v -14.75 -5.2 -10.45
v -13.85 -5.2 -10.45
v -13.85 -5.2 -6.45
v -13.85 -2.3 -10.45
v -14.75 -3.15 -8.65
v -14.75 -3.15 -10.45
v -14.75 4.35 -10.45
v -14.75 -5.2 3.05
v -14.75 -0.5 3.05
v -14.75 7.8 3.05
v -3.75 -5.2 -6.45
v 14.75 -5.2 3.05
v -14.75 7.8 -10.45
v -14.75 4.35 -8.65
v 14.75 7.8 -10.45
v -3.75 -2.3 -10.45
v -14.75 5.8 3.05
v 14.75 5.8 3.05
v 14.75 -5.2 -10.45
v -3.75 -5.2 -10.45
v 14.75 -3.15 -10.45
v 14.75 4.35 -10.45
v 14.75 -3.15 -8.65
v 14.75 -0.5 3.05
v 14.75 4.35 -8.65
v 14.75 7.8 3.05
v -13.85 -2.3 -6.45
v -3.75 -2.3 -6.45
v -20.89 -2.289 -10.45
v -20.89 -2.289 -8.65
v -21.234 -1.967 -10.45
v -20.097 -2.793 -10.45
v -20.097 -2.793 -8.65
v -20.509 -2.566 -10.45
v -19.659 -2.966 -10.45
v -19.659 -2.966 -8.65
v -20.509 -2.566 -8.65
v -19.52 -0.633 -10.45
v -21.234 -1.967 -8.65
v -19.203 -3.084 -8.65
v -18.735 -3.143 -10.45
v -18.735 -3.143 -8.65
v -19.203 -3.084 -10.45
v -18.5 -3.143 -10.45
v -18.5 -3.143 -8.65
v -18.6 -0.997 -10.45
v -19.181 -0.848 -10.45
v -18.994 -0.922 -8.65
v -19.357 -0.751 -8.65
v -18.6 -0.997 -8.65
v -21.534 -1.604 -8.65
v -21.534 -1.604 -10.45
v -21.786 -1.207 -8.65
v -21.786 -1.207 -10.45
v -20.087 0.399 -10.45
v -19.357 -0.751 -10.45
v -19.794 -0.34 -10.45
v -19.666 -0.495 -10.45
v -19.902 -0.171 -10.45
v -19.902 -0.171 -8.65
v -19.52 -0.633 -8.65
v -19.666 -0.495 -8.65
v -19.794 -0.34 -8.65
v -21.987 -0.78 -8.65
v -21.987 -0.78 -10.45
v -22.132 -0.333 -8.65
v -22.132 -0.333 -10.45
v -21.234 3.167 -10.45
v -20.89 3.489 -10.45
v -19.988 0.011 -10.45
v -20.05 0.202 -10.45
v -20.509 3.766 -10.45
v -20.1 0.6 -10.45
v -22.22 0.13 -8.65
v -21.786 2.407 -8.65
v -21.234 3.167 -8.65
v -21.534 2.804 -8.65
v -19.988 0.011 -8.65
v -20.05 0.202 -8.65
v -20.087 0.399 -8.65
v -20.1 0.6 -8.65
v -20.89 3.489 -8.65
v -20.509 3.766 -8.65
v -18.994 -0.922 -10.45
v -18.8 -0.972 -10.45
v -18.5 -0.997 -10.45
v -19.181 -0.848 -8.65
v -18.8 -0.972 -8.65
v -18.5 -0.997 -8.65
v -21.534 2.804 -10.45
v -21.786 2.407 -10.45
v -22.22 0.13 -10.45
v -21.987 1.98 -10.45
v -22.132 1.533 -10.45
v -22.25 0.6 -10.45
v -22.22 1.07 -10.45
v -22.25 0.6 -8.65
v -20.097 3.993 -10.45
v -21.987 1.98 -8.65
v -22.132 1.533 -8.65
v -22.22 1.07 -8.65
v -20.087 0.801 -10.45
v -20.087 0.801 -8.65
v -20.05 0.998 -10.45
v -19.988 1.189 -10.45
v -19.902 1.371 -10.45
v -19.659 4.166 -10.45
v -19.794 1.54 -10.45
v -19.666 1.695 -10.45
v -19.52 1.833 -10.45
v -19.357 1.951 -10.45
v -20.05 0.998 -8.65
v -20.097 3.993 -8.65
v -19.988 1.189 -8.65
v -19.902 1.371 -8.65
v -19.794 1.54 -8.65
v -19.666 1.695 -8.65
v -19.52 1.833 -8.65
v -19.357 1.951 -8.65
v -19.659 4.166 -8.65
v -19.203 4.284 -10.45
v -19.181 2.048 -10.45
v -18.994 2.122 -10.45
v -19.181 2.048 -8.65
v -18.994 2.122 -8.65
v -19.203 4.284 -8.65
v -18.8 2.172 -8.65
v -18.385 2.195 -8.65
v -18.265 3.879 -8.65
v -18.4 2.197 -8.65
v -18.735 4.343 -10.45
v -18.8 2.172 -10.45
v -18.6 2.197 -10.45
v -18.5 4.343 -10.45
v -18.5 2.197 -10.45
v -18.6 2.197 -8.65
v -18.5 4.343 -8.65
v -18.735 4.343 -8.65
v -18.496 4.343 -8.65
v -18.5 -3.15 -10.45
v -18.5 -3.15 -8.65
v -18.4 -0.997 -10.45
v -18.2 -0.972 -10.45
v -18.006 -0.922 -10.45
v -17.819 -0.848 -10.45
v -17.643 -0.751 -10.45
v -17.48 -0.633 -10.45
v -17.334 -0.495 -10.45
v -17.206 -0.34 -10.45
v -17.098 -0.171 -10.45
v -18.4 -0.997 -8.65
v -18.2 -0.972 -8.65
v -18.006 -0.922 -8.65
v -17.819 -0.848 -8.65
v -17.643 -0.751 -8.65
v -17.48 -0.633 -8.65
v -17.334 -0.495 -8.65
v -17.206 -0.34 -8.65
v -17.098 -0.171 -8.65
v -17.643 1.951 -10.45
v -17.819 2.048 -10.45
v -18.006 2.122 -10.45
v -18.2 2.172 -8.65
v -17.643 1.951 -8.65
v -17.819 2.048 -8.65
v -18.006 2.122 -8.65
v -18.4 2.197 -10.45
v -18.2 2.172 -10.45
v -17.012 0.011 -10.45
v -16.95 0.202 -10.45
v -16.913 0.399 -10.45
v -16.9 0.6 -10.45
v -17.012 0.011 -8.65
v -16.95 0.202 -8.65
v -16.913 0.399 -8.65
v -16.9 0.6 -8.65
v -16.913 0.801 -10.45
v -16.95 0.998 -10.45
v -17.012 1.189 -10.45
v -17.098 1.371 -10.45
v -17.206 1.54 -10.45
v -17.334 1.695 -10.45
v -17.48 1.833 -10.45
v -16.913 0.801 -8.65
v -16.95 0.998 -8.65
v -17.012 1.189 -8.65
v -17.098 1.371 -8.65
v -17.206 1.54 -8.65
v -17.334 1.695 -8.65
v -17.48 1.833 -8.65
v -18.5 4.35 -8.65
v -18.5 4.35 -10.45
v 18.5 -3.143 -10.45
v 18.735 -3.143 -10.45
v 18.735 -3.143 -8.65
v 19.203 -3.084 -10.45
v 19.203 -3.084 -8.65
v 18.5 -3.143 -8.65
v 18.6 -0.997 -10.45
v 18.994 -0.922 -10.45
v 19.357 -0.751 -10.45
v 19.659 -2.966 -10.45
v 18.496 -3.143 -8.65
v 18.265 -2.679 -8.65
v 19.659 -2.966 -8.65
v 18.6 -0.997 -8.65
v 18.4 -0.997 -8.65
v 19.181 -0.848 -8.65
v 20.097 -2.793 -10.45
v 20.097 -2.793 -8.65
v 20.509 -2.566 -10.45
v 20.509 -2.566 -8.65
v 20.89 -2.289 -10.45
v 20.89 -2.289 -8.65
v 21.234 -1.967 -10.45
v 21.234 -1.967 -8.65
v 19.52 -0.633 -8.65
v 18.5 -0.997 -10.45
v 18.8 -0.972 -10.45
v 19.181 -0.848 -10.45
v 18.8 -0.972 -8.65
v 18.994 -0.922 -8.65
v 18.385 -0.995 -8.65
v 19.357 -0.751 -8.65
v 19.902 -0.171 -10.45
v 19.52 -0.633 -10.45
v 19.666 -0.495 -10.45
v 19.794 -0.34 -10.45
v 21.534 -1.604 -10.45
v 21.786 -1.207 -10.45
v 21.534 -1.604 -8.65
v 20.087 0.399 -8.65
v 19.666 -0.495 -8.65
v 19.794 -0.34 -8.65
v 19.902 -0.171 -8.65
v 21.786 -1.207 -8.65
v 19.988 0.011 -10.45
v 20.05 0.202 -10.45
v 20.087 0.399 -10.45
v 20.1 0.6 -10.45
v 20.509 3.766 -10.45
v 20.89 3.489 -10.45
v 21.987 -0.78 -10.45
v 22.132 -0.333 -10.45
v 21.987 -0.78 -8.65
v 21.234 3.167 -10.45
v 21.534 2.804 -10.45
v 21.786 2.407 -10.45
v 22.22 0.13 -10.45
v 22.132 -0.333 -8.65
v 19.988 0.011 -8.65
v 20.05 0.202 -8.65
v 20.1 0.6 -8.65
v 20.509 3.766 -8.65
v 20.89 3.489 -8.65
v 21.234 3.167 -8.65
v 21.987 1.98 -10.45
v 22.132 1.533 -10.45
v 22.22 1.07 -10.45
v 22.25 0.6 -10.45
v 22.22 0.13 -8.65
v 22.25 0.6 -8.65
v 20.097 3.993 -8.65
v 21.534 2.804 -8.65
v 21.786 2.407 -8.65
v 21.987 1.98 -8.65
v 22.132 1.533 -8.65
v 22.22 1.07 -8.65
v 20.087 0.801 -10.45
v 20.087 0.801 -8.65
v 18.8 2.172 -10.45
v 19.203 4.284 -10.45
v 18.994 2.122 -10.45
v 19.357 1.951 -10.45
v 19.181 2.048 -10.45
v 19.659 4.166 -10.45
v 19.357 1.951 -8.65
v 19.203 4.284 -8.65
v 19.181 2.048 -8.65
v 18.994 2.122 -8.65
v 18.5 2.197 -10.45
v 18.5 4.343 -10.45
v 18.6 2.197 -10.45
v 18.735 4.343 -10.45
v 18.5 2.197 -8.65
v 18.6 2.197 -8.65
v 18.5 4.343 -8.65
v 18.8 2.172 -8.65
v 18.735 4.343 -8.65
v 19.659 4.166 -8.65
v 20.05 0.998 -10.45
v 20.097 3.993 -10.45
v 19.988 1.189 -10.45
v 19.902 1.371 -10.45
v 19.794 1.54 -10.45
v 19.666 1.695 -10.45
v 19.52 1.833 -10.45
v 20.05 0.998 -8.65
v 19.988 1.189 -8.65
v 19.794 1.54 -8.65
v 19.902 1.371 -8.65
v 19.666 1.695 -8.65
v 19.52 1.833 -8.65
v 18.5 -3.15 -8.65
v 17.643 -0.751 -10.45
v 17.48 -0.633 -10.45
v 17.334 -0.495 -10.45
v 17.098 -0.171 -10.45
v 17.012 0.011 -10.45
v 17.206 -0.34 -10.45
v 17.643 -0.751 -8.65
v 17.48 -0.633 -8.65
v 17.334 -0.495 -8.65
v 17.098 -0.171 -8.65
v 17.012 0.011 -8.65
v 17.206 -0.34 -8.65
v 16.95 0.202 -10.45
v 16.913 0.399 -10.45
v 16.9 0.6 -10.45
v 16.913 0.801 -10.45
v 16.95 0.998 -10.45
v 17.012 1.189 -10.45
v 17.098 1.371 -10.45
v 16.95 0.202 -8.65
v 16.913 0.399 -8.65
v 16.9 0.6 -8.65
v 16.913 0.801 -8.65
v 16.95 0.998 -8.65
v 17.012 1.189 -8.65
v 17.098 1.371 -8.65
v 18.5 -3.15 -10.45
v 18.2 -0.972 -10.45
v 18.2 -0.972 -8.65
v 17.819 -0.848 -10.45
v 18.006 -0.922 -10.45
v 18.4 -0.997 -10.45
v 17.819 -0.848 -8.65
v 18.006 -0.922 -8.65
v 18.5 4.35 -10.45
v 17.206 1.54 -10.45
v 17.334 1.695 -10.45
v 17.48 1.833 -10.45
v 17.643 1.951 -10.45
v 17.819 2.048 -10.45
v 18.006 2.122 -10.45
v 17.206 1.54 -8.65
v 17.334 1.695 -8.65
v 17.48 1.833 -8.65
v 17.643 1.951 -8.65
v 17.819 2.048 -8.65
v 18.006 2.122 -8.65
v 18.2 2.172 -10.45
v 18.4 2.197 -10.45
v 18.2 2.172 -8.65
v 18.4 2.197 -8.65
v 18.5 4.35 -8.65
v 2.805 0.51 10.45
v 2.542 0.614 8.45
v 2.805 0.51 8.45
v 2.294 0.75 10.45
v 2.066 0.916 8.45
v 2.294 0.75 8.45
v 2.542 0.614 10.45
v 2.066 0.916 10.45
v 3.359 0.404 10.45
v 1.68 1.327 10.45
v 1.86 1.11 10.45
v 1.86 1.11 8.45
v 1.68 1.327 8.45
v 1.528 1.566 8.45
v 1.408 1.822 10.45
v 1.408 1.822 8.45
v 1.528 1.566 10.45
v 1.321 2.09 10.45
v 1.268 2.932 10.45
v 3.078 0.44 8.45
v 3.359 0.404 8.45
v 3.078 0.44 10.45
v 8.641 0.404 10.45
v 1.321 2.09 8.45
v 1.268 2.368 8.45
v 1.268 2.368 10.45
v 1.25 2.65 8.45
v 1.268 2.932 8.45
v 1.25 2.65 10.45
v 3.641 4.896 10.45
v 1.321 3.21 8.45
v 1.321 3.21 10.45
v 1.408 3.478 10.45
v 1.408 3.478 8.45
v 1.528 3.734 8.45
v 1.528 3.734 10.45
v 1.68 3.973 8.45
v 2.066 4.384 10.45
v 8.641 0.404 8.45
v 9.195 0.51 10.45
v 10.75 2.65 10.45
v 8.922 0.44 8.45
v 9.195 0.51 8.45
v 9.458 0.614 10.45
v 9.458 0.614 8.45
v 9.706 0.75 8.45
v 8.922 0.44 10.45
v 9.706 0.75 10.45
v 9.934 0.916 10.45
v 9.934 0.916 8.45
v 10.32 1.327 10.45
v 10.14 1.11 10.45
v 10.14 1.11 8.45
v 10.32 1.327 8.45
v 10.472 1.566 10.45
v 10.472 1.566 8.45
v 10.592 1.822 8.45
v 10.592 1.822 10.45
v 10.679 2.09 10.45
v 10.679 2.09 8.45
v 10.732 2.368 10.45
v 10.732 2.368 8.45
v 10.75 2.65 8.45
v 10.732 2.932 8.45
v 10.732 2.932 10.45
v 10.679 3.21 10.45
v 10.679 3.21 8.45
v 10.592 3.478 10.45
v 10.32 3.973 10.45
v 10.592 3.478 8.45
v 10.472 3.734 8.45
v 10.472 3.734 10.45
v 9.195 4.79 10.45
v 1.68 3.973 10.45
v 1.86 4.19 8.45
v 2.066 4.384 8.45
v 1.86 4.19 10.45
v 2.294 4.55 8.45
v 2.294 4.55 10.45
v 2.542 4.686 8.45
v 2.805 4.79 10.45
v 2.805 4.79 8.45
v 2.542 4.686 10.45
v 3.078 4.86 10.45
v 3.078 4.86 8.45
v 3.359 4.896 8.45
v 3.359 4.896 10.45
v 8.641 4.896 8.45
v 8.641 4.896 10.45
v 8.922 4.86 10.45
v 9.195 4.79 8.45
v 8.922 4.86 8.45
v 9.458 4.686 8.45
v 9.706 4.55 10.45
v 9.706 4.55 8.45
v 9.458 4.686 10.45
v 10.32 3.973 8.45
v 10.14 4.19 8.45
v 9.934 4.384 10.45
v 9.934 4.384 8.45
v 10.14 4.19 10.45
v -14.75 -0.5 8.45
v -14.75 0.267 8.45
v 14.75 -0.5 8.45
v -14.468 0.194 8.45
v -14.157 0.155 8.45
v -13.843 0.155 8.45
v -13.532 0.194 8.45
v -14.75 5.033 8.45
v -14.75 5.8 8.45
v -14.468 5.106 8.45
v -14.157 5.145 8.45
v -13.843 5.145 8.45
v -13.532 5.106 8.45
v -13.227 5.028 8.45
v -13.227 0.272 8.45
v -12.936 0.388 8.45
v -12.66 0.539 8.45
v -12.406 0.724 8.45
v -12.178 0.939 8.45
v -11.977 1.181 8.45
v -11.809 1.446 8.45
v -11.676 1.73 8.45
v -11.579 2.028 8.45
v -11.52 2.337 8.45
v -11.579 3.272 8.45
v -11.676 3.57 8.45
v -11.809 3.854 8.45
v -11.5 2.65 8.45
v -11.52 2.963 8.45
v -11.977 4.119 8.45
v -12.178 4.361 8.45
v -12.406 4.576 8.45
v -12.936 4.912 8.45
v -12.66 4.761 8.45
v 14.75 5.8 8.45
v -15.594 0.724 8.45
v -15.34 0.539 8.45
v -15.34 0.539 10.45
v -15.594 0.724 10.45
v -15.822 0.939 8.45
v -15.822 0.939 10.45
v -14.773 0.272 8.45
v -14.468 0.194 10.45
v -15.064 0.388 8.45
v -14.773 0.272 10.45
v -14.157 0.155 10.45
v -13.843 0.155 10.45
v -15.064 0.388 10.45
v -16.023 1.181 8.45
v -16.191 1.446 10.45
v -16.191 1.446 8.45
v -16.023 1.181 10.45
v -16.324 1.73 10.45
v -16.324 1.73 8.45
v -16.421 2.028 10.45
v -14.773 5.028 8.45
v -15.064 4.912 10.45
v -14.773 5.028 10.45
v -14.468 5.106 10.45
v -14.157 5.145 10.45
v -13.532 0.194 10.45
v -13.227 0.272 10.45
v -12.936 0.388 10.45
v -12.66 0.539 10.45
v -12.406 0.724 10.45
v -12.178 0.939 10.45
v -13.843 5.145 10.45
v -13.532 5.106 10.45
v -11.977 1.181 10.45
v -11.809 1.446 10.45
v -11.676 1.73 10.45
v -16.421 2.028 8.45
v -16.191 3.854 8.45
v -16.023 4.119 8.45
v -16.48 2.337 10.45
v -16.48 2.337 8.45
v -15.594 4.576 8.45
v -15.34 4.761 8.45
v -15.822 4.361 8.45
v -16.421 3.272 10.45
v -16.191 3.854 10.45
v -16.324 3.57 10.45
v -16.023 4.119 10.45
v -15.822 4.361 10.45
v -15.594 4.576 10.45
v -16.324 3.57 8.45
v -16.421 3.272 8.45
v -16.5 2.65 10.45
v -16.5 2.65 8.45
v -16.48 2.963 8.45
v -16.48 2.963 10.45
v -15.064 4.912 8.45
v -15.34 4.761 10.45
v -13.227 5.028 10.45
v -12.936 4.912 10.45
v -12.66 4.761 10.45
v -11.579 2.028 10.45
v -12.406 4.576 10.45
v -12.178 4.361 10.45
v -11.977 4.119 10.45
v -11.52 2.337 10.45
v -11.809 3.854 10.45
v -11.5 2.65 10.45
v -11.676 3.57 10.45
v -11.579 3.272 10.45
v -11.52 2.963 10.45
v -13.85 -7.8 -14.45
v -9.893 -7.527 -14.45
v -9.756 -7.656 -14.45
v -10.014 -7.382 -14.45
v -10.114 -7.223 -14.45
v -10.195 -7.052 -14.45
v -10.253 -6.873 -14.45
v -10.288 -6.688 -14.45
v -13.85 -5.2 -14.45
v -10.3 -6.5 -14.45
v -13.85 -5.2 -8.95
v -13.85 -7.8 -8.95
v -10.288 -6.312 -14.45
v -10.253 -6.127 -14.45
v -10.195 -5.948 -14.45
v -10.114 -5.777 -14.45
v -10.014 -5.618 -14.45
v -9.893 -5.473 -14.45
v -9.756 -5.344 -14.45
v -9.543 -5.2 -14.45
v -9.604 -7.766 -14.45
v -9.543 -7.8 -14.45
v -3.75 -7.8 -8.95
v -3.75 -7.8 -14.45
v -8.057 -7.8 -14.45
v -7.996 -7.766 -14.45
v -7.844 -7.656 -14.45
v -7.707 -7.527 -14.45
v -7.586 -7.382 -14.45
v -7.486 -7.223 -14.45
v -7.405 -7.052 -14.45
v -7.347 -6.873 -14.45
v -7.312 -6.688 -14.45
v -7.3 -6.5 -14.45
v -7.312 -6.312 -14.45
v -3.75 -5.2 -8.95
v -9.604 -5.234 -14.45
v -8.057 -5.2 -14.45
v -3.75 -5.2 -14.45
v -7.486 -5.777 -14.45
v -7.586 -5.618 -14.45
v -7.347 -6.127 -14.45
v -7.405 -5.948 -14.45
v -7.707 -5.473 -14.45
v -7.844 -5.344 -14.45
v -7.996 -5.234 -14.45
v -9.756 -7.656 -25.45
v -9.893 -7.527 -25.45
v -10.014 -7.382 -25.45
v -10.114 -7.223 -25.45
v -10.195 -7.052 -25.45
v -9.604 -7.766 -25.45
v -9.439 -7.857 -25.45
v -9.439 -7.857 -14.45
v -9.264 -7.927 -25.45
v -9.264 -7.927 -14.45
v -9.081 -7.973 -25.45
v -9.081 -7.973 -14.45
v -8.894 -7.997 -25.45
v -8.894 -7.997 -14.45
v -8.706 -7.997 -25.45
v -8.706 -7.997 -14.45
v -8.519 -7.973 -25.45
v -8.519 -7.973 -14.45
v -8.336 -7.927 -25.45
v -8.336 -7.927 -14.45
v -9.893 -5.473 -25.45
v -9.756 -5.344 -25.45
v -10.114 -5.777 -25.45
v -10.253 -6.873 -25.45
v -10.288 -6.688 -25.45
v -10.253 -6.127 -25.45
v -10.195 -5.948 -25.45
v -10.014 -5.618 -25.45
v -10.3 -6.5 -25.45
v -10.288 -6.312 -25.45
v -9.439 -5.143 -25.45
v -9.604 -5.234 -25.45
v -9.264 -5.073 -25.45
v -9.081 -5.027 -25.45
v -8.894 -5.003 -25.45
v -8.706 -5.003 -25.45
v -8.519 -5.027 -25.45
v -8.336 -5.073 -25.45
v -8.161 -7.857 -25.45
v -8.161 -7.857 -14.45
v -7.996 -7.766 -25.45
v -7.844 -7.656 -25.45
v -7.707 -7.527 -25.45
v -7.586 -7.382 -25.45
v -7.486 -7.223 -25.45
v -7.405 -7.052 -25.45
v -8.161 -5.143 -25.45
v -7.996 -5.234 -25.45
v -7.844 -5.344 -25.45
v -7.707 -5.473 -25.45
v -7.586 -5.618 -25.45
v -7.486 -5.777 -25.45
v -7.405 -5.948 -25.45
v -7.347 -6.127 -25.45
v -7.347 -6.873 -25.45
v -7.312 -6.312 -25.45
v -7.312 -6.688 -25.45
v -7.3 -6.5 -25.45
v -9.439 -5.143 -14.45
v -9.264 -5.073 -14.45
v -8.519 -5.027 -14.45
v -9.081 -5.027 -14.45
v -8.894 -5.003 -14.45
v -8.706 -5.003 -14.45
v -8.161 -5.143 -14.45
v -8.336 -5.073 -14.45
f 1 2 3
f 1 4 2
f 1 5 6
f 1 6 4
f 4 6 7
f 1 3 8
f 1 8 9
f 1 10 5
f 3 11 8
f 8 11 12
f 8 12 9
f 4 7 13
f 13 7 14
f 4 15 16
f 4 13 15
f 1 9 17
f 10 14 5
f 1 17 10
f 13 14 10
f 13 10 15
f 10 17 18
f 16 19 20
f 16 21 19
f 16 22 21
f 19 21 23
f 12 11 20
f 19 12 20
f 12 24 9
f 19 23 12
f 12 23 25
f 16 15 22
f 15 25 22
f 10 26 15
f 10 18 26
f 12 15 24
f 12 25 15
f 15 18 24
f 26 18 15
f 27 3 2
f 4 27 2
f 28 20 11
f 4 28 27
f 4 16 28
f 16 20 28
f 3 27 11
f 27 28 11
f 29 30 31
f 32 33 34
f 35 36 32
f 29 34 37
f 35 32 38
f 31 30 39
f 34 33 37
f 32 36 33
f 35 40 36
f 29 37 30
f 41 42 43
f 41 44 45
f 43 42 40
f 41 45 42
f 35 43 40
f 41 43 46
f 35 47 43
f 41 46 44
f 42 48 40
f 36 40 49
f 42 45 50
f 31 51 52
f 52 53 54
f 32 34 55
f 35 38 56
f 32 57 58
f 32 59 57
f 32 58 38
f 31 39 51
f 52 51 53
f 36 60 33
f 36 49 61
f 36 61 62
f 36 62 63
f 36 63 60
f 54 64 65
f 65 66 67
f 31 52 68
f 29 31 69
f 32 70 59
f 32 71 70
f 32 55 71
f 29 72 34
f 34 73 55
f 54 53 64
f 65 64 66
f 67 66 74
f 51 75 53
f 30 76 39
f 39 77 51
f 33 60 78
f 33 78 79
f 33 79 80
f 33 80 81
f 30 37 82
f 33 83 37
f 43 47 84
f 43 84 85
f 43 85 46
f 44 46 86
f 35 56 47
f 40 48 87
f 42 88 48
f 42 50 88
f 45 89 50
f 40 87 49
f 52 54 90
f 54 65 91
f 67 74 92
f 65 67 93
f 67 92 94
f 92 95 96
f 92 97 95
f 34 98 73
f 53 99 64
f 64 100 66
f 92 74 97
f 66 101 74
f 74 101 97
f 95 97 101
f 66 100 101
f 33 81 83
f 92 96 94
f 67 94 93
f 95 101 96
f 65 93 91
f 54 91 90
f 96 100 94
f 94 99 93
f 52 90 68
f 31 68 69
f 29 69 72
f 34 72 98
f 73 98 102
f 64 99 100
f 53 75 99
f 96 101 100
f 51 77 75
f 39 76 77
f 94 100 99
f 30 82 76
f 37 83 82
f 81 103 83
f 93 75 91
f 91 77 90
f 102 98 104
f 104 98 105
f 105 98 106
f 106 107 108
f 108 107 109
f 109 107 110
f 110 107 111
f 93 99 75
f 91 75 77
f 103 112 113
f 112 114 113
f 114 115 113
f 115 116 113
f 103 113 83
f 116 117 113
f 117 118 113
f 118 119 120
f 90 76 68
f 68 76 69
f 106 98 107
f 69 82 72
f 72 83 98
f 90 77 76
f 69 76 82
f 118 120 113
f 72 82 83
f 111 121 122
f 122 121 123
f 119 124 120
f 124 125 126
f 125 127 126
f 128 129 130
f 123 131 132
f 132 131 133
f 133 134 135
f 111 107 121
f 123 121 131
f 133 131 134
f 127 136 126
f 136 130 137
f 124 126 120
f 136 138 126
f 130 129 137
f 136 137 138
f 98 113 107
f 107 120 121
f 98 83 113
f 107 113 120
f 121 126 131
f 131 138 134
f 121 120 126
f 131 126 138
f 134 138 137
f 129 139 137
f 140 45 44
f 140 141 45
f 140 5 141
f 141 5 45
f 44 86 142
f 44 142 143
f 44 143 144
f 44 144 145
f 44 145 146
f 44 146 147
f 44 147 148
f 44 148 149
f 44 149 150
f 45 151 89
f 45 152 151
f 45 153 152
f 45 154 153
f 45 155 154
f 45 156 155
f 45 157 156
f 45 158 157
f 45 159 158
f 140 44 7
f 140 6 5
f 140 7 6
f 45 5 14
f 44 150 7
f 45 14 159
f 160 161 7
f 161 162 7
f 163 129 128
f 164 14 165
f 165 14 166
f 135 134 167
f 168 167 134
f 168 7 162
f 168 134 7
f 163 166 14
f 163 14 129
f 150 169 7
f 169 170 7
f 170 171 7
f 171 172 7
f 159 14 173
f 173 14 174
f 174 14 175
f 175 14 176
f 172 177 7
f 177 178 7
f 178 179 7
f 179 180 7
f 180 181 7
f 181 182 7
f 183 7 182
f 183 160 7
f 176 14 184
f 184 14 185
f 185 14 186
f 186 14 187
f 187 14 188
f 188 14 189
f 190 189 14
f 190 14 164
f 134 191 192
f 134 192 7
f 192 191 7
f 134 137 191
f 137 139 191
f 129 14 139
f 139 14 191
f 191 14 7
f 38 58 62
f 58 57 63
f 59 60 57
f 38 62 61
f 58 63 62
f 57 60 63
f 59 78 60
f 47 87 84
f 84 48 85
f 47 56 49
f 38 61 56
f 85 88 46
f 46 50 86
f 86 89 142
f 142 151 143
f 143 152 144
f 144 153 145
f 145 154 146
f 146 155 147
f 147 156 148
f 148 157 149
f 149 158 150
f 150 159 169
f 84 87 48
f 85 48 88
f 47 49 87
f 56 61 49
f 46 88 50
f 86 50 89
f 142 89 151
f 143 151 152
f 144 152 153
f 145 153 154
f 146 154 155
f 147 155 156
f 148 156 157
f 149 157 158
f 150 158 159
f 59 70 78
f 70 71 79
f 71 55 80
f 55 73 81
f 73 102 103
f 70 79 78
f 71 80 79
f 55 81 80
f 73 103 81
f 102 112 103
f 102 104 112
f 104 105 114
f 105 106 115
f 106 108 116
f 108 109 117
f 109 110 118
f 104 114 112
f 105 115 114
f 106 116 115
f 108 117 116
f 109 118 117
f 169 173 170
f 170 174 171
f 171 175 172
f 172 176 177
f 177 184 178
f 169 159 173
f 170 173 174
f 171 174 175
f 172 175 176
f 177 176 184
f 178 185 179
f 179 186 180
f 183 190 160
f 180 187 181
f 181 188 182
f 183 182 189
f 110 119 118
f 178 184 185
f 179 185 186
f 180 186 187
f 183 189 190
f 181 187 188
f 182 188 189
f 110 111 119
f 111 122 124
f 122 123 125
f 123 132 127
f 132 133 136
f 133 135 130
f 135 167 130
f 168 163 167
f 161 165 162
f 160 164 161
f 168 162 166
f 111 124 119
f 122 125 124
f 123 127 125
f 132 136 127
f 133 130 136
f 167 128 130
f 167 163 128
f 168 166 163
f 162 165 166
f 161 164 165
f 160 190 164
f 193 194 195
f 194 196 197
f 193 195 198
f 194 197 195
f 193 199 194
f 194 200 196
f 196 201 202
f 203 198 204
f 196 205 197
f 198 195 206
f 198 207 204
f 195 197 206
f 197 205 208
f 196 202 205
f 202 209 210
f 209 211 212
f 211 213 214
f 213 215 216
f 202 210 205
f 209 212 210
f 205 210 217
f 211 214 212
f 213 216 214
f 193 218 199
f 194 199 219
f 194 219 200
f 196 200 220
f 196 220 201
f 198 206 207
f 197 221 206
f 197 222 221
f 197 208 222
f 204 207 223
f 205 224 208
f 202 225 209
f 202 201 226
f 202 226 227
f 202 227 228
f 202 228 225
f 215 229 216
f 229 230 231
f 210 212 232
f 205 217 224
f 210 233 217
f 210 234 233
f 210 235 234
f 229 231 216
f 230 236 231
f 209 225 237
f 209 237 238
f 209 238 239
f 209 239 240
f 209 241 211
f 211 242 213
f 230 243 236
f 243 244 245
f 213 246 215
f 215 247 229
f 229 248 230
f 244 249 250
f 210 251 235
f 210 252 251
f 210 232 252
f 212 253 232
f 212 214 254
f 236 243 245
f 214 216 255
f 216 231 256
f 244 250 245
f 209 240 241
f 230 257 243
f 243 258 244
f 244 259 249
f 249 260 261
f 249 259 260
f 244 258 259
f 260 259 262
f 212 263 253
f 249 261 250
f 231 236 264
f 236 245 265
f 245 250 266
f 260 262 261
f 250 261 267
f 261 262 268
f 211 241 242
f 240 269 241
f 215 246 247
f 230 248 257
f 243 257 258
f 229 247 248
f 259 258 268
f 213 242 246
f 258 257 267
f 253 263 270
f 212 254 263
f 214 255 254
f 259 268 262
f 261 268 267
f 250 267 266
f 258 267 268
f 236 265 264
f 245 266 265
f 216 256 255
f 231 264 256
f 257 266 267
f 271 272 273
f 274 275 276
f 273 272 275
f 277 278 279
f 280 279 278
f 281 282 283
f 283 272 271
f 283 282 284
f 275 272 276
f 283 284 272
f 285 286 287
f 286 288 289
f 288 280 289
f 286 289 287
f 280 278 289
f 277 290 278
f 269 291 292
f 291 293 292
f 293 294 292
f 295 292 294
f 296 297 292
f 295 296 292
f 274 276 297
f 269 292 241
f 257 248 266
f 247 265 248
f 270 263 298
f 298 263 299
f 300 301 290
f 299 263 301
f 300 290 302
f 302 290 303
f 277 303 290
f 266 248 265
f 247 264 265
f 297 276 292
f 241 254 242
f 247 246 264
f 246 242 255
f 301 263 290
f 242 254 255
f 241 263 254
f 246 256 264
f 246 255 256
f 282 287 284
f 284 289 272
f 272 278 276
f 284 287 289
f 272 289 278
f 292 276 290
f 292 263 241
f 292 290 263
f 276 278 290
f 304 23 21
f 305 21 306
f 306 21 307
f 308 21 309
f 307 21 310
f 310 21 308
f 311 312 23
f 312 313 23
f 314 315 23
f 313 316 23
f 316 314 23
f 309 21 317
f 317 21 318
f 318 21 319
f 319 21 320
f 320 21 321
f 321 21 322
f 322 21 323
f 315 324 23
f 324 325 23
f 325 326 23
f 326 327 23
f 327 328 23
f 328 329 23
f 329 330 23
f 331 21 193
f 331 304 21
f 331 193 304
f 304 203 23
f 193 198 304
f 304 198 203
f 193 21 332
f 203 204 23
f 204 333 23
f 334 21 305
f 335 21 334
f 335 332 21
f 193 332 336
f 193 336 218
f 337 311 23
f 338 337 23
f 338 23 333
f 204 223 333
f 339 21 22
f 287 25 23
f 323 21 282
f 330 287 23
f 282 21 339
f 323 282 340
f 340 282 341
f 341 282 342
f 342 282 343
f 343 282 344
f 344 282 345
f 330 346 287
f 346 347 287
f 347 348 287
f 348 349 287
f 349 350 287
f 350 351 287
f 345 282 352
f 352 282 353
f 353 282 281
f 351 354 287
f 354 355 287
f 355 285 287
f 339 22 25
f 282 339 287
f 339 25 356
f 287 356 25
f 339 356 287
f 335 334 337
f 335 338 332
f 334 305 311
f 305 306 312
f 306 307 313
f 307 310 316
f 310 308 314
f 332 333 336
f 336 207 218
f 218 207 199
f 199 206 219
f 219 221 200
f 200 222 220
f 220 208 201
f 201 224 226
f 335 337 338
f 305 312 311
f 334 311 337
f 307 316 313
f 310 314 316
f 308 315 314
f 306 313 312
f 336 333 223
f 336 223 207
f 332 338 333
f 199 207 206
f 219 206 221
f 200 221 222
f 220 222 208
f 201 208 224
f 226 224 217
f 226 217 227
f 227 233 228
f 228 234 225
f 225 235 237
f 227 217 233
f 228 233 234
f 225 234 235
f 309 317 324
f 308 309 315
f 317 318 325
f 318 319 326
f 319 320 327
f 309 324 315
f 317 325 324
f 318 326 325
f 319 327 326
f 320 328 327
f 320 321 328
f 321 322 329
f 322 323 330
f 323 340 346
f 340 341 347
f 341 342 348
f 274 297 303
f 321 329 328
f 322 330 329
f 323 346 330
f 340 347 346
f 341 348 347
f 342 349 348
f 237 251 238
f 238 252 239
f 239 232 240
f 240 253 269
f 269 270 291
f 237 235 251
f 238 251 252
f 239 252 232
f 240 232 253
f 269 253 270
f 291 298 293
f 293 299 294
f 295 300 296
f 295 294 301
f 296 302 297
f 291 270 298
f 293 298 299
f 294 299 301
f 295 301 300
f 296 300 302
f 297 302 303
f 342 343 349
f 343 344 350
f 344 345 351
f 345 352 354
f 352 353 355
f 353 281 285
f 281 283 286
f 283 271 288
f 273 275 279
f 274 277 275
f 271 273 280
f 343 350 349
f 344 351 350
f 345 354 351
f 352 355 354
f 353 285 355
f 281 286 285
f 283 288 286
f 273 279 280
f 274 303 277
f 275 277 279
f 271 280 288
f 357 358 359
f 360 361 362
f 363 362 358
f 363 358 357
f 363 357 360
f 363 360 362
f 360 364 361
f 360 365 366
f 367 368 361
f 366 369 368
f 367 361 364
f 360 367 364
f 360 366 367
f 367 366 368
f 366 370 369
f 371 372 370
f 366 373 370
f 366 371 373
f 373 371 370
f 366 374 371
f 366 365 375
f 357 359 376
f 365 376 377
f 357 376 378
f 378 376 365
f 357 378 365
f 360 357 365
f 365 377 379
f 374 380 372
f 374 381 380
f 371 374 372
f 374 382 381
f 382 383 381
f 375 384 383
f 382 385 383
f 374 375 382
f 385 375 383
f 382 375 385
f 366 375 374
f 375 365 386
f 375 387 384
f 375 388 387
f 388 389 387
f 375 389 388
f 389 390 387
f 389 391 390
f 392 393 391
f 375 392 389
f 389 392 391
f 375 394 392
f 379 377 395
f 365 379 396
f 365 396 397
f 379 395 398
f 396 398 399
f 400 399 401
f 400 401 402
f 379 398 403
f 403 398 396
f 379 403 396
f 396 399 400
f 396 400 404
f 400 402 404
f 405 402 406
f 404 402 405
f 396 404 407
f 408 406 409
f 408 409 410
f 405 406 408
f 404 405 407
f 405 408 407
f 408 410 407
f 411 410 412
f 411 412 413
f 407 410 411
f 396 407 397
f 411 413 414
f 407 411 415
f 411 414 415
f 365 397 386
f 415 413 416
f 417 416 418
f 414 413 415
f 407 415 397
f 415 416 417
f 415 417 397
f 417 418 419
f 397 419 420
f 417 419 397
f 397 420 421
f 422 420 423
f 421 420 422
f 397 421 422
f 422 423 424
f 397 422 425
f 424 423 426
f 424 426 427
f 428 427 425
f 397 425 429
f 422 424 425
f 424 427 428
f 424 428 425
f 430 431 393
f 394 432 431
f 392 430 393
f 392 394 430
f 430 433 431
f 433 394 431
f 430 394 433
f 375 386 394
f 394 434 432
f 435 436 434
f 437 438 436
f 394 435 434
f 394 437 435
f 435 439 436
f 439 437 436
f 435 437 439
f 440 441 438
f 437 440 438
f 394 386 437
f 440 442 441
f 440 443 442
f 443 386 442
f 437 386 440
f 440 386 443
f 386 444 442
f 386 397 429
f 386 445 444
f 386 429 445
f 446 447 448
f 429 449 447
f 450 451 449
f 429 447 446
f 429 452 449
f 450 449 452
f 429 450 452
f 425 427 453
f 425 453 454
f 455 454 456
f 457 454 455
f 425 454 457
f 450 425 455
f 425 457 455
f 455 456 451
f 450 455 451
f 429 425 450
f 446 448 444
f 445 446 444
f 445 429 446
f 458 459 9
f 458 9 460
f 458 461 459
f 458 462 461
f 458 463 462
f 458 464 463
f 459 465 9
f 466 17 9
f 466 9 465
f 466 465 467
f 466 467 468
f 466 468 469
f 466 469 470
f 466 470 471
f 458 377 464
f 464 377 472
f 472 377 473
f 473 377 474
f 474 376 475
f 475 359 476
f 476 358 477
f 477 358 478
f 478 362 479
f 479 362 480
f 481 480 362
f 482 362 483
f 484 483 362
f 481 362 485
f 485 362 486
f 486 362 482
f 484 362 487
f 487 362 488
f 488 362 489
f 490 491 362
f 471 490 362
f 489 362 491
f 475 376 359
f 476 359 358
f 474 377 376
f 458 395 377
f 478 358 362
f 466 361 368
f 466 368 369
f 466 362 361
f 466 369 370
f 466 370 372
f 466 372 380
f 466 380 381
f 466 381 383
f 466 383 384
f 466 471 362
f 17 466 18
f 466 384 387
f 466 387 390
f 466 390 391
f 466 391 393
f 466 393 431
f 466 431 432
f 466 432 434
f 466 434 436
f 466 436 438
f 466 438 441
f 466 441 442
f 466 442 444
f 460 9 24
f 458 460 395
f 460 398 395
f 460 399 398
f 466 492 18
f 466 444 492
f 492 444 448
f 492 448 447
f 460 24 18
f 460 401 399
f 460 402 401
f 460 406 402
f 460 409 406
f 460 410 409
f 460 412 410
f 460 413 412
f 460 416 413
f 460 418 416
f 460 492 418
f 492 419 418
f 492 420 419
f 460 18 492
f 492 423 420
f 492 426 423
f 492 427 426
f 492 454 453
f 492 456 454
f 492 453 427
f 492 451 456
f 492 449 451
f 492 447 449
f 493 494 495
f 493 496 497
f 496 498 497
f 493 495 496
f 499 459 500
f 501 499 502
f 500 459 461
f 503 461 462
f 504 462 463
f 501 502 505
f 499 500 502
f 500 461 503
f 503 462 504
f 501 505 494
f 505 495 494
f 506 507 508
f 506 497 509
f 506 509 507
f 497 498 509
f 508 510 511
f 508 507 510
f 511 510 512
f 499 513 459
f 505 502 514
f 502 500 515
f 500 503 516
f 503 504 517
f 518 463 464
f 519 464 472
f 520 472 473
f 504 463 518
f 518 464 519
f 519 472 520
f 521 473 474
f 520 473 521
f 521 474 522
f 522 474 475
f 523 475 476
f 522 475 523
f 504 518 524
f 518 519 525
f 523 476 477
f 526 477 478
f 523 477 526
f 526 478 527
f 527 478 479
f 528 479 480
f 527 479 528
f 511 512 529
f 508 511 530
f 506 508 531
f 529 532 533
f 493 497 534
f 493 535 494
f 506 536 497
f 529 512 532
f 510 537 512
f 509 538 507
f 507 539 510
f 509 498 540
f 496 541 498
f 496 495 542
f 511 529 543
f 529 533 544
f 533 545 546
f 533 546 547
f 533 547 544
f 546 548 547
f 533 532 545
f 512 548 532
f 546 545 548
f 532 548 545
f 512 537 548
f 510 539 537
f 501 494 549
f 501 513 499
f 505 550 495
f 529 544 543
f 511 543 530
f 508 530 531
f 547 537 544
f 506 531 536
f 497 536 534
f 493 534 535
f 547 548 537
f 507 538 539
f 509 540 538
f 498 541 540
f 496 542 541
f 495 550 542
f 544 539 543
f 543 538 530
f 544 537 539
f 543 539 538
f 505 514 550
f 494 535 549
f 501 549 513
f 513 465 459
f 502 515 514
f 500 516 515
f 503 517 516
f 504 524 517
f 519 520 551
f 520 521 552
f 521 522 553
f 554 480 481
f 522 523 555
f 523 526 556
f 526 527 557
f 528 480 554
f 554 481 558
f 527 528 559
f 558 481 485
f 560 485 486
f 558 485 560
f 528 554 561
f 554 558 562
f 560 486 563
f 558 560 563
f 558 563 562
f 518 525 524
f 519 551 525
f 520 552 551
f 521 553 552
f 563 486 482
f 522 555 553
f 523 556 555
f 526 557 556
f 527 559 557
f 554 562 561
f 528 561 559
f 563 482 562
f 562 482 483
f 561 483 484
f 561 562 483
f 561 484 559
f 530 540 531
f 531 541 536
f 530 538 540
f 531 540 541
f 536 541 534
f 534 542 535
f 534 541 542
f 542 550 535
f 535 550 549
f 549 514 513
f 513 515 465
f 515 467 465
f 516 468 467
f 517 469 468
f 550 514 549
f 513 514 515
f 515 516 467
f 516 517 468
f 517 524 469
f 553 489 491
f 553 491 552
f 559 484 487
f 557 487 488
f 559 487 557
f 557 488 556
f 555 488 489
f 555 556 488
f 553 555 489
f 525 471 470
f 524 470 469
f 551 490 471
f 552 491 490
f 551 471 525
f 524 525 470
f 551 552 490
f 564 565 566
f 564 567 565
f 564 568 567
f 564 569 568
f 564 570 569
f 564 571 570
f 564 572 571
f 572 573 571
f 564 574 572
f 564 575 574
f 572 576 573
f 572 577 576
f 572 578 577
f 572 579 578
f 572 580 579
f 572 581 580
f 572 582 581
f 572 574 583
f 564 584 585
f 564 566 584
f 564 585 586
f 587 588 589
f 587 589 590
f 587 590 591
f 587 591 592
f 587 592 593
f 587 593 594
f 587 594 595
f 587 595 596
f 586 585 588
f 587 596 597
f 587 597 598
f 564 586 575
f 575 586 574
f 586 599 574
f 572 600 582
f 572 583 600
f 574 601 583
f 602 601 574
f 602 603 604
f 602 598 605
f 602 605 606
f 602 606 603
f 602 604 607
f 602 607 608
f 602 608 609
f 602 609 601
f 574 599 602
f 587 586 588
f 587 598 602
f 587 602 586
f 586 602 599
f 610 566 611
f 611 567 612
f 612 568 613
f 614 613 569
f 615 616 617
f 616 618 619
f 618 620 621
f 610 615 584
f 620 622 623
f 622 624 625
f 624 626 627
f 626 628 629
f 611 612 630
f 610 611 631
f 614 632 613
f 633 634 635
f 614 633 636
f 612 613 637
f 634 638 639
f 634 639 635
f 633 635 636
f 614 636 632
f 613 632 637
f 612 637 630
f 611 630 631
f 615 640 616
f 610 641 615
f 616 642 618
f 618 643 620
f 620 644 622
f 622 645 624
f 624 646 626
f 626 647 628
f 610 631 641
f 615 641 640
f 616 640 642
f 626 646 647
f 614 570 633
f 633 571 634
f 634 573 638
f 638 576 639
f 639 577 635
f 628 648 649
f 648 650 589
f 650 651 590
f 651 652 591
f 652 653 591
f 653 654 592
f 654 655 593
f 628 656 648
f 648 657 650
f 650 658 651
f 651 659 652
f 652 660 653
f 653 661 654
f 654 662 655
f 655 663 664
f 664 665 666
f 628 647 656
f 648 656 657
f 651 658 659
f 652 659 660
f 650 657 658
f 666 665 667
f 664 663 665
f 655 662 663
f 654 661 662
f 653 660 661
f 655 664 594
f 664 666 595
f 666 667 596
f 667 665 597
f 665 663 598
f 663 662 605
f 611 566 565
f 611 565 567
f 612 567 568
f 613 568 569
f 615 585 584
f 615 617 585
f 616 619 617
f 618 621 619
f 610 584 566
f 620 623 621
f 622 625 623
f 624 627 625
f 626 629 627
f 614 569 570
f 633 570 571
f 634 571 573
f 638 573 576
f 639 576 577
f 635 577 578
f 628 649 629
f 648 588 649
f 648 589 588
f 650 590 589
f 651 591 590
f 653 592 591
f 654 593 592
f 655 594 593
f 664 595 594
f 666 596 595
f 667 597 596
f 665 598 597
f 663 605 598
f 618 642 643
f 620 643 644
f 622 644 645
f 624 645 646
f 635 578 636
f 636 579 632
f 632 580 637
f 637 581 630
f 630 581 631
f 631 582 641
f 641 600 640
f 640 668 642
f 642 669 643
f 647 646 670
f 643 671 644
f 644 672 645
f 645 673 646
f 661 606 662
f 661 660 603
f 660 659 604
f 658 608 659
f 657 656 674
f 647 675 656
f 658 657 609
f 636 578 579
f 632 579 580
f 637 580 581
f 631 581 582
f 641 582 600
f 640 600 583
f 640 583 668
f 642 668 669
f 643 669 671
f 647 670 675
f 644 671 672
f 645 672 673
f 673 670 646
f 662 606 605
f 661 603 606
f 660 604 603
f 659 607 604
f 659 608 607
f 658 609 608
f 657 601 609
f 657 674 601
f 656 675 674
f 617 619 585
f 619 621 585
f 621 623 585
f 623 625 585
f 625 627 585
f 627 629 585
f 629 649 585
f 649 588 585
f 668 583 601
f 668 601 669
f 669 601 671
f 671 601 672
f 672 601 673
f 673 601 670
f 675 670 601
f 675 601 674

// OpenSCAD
$fn = 50;

// GP2Y0A21YK0F 測距センサ外形モデル
// 座標系: 本体の中心が原点。+Z は上方向（レンズが上面）、+Y は前方（コネクタの反対方向）

module gp2y0a21yk0f() {
    // 全体の中心を原点 (0, 0, 0) に合わせるためのオフセット調整
    // (X方向は対称のため 0、Y方向とZ方向はバウンディングボックスの中心を基準に調整)
    translate([0, 1.3, -10.45]) {
        
        // 1. ベース本体ケース (Base case)
        // 29.5mm x 13mm x 13.5mm の直方体
        difference() {
            translate([-14.75, -6.5, 0])
                cube([29.5, 13, 13.5]);
            
            // 下部のケーブル/コネクタ用切欠き
            translate([-13.85, -6.6, -1])
                cube([10.1, 3.0, 5.0]);
        }
        
        // 2. 連結バー & 取付耳 (Mounting ears)
        // 厚み: 1.8mm (Z: 0 〜 1.8)
        // 穴ピッチ: 37mm (X: -18.5, 18.5)
        // 耳の中心はベース後端から 7.2mm の位置 (Y: -0.7)
        for (x = [-18.5, 18.5]) {
            difference() {
                union() {
                    // 耳の半円部 (R3.75)
                    translate([x, -0.7, 0])
                        cylinder(d=7.5, h=1.8);
                    
                    // ベース本体と耳をつなぐ連結バー
                    if (x < 0) {
                        translate([x, -0.7 - 3.75, 0])
                            cube([3.75, 7.5, 1.8]);
                    } else {
                        translate([x - 3.75, -0.7 - 3.75, 0])
                            cube([3.75, 7.5, 1.8]);
                    }
                }
                // 取付穴 (直径 3.2mm)
                translate([x, -0.7, -1])
                    cylinder(d=3.2, h=4.0);
            }
        }
        
        // 3. レンズ部本体ケース (Lens case)
        // 29.5mm x 6.3mm x 5.4mm
        // ベースの上面 (Z: 13.5) に配置
        translate([-14.75, -1.8, 13.5])
            cube([29.5, 6.3, 5.4]);
            
        // 4. レンズ (Lenses)
        // 高さ: 2.0mm
        
        // 発光側レンズ (Light emitter: 左側、円形)
        // レンズ中心: X = -14.0 (耳から 4.5mm)
        translate([-14.0, 1.35, 18.9]) {
            cylinder(d=5.0, h=2.0);
        }
        
        // 受光側レンズ (Light detector: 右側、角丸矩形)
        // レンズ中心: X = 6.0 (発光側から 20.0mm)
        translate([6.0, 1.35, 18.9]) {
            hull() {
                translate([-2.5, 0, 0]) cylinder(d=4.5, h=2.0);
                translate([2.5, 0, 0]) cylinder(d=4.5, h=2.0);
            }
        }
        
        // 5. コネクタ部 (Connector)
        // 幅 10.1mm、飛び出し 2.6mm
        translate([-13.85, -9.1, -4.0])
            cube([10.1, 2.6, 5.5]);
            
        // 6. ケーブル (Cable: 簡易表現の丸棒)
        translate([-8.8, -7.8, -15.0]) {
            color("gray")
                cylinder(d=3.0, h=11.0);
        }
    }
}

// モデルの呼び出し
gp2y0a21yk0f();
